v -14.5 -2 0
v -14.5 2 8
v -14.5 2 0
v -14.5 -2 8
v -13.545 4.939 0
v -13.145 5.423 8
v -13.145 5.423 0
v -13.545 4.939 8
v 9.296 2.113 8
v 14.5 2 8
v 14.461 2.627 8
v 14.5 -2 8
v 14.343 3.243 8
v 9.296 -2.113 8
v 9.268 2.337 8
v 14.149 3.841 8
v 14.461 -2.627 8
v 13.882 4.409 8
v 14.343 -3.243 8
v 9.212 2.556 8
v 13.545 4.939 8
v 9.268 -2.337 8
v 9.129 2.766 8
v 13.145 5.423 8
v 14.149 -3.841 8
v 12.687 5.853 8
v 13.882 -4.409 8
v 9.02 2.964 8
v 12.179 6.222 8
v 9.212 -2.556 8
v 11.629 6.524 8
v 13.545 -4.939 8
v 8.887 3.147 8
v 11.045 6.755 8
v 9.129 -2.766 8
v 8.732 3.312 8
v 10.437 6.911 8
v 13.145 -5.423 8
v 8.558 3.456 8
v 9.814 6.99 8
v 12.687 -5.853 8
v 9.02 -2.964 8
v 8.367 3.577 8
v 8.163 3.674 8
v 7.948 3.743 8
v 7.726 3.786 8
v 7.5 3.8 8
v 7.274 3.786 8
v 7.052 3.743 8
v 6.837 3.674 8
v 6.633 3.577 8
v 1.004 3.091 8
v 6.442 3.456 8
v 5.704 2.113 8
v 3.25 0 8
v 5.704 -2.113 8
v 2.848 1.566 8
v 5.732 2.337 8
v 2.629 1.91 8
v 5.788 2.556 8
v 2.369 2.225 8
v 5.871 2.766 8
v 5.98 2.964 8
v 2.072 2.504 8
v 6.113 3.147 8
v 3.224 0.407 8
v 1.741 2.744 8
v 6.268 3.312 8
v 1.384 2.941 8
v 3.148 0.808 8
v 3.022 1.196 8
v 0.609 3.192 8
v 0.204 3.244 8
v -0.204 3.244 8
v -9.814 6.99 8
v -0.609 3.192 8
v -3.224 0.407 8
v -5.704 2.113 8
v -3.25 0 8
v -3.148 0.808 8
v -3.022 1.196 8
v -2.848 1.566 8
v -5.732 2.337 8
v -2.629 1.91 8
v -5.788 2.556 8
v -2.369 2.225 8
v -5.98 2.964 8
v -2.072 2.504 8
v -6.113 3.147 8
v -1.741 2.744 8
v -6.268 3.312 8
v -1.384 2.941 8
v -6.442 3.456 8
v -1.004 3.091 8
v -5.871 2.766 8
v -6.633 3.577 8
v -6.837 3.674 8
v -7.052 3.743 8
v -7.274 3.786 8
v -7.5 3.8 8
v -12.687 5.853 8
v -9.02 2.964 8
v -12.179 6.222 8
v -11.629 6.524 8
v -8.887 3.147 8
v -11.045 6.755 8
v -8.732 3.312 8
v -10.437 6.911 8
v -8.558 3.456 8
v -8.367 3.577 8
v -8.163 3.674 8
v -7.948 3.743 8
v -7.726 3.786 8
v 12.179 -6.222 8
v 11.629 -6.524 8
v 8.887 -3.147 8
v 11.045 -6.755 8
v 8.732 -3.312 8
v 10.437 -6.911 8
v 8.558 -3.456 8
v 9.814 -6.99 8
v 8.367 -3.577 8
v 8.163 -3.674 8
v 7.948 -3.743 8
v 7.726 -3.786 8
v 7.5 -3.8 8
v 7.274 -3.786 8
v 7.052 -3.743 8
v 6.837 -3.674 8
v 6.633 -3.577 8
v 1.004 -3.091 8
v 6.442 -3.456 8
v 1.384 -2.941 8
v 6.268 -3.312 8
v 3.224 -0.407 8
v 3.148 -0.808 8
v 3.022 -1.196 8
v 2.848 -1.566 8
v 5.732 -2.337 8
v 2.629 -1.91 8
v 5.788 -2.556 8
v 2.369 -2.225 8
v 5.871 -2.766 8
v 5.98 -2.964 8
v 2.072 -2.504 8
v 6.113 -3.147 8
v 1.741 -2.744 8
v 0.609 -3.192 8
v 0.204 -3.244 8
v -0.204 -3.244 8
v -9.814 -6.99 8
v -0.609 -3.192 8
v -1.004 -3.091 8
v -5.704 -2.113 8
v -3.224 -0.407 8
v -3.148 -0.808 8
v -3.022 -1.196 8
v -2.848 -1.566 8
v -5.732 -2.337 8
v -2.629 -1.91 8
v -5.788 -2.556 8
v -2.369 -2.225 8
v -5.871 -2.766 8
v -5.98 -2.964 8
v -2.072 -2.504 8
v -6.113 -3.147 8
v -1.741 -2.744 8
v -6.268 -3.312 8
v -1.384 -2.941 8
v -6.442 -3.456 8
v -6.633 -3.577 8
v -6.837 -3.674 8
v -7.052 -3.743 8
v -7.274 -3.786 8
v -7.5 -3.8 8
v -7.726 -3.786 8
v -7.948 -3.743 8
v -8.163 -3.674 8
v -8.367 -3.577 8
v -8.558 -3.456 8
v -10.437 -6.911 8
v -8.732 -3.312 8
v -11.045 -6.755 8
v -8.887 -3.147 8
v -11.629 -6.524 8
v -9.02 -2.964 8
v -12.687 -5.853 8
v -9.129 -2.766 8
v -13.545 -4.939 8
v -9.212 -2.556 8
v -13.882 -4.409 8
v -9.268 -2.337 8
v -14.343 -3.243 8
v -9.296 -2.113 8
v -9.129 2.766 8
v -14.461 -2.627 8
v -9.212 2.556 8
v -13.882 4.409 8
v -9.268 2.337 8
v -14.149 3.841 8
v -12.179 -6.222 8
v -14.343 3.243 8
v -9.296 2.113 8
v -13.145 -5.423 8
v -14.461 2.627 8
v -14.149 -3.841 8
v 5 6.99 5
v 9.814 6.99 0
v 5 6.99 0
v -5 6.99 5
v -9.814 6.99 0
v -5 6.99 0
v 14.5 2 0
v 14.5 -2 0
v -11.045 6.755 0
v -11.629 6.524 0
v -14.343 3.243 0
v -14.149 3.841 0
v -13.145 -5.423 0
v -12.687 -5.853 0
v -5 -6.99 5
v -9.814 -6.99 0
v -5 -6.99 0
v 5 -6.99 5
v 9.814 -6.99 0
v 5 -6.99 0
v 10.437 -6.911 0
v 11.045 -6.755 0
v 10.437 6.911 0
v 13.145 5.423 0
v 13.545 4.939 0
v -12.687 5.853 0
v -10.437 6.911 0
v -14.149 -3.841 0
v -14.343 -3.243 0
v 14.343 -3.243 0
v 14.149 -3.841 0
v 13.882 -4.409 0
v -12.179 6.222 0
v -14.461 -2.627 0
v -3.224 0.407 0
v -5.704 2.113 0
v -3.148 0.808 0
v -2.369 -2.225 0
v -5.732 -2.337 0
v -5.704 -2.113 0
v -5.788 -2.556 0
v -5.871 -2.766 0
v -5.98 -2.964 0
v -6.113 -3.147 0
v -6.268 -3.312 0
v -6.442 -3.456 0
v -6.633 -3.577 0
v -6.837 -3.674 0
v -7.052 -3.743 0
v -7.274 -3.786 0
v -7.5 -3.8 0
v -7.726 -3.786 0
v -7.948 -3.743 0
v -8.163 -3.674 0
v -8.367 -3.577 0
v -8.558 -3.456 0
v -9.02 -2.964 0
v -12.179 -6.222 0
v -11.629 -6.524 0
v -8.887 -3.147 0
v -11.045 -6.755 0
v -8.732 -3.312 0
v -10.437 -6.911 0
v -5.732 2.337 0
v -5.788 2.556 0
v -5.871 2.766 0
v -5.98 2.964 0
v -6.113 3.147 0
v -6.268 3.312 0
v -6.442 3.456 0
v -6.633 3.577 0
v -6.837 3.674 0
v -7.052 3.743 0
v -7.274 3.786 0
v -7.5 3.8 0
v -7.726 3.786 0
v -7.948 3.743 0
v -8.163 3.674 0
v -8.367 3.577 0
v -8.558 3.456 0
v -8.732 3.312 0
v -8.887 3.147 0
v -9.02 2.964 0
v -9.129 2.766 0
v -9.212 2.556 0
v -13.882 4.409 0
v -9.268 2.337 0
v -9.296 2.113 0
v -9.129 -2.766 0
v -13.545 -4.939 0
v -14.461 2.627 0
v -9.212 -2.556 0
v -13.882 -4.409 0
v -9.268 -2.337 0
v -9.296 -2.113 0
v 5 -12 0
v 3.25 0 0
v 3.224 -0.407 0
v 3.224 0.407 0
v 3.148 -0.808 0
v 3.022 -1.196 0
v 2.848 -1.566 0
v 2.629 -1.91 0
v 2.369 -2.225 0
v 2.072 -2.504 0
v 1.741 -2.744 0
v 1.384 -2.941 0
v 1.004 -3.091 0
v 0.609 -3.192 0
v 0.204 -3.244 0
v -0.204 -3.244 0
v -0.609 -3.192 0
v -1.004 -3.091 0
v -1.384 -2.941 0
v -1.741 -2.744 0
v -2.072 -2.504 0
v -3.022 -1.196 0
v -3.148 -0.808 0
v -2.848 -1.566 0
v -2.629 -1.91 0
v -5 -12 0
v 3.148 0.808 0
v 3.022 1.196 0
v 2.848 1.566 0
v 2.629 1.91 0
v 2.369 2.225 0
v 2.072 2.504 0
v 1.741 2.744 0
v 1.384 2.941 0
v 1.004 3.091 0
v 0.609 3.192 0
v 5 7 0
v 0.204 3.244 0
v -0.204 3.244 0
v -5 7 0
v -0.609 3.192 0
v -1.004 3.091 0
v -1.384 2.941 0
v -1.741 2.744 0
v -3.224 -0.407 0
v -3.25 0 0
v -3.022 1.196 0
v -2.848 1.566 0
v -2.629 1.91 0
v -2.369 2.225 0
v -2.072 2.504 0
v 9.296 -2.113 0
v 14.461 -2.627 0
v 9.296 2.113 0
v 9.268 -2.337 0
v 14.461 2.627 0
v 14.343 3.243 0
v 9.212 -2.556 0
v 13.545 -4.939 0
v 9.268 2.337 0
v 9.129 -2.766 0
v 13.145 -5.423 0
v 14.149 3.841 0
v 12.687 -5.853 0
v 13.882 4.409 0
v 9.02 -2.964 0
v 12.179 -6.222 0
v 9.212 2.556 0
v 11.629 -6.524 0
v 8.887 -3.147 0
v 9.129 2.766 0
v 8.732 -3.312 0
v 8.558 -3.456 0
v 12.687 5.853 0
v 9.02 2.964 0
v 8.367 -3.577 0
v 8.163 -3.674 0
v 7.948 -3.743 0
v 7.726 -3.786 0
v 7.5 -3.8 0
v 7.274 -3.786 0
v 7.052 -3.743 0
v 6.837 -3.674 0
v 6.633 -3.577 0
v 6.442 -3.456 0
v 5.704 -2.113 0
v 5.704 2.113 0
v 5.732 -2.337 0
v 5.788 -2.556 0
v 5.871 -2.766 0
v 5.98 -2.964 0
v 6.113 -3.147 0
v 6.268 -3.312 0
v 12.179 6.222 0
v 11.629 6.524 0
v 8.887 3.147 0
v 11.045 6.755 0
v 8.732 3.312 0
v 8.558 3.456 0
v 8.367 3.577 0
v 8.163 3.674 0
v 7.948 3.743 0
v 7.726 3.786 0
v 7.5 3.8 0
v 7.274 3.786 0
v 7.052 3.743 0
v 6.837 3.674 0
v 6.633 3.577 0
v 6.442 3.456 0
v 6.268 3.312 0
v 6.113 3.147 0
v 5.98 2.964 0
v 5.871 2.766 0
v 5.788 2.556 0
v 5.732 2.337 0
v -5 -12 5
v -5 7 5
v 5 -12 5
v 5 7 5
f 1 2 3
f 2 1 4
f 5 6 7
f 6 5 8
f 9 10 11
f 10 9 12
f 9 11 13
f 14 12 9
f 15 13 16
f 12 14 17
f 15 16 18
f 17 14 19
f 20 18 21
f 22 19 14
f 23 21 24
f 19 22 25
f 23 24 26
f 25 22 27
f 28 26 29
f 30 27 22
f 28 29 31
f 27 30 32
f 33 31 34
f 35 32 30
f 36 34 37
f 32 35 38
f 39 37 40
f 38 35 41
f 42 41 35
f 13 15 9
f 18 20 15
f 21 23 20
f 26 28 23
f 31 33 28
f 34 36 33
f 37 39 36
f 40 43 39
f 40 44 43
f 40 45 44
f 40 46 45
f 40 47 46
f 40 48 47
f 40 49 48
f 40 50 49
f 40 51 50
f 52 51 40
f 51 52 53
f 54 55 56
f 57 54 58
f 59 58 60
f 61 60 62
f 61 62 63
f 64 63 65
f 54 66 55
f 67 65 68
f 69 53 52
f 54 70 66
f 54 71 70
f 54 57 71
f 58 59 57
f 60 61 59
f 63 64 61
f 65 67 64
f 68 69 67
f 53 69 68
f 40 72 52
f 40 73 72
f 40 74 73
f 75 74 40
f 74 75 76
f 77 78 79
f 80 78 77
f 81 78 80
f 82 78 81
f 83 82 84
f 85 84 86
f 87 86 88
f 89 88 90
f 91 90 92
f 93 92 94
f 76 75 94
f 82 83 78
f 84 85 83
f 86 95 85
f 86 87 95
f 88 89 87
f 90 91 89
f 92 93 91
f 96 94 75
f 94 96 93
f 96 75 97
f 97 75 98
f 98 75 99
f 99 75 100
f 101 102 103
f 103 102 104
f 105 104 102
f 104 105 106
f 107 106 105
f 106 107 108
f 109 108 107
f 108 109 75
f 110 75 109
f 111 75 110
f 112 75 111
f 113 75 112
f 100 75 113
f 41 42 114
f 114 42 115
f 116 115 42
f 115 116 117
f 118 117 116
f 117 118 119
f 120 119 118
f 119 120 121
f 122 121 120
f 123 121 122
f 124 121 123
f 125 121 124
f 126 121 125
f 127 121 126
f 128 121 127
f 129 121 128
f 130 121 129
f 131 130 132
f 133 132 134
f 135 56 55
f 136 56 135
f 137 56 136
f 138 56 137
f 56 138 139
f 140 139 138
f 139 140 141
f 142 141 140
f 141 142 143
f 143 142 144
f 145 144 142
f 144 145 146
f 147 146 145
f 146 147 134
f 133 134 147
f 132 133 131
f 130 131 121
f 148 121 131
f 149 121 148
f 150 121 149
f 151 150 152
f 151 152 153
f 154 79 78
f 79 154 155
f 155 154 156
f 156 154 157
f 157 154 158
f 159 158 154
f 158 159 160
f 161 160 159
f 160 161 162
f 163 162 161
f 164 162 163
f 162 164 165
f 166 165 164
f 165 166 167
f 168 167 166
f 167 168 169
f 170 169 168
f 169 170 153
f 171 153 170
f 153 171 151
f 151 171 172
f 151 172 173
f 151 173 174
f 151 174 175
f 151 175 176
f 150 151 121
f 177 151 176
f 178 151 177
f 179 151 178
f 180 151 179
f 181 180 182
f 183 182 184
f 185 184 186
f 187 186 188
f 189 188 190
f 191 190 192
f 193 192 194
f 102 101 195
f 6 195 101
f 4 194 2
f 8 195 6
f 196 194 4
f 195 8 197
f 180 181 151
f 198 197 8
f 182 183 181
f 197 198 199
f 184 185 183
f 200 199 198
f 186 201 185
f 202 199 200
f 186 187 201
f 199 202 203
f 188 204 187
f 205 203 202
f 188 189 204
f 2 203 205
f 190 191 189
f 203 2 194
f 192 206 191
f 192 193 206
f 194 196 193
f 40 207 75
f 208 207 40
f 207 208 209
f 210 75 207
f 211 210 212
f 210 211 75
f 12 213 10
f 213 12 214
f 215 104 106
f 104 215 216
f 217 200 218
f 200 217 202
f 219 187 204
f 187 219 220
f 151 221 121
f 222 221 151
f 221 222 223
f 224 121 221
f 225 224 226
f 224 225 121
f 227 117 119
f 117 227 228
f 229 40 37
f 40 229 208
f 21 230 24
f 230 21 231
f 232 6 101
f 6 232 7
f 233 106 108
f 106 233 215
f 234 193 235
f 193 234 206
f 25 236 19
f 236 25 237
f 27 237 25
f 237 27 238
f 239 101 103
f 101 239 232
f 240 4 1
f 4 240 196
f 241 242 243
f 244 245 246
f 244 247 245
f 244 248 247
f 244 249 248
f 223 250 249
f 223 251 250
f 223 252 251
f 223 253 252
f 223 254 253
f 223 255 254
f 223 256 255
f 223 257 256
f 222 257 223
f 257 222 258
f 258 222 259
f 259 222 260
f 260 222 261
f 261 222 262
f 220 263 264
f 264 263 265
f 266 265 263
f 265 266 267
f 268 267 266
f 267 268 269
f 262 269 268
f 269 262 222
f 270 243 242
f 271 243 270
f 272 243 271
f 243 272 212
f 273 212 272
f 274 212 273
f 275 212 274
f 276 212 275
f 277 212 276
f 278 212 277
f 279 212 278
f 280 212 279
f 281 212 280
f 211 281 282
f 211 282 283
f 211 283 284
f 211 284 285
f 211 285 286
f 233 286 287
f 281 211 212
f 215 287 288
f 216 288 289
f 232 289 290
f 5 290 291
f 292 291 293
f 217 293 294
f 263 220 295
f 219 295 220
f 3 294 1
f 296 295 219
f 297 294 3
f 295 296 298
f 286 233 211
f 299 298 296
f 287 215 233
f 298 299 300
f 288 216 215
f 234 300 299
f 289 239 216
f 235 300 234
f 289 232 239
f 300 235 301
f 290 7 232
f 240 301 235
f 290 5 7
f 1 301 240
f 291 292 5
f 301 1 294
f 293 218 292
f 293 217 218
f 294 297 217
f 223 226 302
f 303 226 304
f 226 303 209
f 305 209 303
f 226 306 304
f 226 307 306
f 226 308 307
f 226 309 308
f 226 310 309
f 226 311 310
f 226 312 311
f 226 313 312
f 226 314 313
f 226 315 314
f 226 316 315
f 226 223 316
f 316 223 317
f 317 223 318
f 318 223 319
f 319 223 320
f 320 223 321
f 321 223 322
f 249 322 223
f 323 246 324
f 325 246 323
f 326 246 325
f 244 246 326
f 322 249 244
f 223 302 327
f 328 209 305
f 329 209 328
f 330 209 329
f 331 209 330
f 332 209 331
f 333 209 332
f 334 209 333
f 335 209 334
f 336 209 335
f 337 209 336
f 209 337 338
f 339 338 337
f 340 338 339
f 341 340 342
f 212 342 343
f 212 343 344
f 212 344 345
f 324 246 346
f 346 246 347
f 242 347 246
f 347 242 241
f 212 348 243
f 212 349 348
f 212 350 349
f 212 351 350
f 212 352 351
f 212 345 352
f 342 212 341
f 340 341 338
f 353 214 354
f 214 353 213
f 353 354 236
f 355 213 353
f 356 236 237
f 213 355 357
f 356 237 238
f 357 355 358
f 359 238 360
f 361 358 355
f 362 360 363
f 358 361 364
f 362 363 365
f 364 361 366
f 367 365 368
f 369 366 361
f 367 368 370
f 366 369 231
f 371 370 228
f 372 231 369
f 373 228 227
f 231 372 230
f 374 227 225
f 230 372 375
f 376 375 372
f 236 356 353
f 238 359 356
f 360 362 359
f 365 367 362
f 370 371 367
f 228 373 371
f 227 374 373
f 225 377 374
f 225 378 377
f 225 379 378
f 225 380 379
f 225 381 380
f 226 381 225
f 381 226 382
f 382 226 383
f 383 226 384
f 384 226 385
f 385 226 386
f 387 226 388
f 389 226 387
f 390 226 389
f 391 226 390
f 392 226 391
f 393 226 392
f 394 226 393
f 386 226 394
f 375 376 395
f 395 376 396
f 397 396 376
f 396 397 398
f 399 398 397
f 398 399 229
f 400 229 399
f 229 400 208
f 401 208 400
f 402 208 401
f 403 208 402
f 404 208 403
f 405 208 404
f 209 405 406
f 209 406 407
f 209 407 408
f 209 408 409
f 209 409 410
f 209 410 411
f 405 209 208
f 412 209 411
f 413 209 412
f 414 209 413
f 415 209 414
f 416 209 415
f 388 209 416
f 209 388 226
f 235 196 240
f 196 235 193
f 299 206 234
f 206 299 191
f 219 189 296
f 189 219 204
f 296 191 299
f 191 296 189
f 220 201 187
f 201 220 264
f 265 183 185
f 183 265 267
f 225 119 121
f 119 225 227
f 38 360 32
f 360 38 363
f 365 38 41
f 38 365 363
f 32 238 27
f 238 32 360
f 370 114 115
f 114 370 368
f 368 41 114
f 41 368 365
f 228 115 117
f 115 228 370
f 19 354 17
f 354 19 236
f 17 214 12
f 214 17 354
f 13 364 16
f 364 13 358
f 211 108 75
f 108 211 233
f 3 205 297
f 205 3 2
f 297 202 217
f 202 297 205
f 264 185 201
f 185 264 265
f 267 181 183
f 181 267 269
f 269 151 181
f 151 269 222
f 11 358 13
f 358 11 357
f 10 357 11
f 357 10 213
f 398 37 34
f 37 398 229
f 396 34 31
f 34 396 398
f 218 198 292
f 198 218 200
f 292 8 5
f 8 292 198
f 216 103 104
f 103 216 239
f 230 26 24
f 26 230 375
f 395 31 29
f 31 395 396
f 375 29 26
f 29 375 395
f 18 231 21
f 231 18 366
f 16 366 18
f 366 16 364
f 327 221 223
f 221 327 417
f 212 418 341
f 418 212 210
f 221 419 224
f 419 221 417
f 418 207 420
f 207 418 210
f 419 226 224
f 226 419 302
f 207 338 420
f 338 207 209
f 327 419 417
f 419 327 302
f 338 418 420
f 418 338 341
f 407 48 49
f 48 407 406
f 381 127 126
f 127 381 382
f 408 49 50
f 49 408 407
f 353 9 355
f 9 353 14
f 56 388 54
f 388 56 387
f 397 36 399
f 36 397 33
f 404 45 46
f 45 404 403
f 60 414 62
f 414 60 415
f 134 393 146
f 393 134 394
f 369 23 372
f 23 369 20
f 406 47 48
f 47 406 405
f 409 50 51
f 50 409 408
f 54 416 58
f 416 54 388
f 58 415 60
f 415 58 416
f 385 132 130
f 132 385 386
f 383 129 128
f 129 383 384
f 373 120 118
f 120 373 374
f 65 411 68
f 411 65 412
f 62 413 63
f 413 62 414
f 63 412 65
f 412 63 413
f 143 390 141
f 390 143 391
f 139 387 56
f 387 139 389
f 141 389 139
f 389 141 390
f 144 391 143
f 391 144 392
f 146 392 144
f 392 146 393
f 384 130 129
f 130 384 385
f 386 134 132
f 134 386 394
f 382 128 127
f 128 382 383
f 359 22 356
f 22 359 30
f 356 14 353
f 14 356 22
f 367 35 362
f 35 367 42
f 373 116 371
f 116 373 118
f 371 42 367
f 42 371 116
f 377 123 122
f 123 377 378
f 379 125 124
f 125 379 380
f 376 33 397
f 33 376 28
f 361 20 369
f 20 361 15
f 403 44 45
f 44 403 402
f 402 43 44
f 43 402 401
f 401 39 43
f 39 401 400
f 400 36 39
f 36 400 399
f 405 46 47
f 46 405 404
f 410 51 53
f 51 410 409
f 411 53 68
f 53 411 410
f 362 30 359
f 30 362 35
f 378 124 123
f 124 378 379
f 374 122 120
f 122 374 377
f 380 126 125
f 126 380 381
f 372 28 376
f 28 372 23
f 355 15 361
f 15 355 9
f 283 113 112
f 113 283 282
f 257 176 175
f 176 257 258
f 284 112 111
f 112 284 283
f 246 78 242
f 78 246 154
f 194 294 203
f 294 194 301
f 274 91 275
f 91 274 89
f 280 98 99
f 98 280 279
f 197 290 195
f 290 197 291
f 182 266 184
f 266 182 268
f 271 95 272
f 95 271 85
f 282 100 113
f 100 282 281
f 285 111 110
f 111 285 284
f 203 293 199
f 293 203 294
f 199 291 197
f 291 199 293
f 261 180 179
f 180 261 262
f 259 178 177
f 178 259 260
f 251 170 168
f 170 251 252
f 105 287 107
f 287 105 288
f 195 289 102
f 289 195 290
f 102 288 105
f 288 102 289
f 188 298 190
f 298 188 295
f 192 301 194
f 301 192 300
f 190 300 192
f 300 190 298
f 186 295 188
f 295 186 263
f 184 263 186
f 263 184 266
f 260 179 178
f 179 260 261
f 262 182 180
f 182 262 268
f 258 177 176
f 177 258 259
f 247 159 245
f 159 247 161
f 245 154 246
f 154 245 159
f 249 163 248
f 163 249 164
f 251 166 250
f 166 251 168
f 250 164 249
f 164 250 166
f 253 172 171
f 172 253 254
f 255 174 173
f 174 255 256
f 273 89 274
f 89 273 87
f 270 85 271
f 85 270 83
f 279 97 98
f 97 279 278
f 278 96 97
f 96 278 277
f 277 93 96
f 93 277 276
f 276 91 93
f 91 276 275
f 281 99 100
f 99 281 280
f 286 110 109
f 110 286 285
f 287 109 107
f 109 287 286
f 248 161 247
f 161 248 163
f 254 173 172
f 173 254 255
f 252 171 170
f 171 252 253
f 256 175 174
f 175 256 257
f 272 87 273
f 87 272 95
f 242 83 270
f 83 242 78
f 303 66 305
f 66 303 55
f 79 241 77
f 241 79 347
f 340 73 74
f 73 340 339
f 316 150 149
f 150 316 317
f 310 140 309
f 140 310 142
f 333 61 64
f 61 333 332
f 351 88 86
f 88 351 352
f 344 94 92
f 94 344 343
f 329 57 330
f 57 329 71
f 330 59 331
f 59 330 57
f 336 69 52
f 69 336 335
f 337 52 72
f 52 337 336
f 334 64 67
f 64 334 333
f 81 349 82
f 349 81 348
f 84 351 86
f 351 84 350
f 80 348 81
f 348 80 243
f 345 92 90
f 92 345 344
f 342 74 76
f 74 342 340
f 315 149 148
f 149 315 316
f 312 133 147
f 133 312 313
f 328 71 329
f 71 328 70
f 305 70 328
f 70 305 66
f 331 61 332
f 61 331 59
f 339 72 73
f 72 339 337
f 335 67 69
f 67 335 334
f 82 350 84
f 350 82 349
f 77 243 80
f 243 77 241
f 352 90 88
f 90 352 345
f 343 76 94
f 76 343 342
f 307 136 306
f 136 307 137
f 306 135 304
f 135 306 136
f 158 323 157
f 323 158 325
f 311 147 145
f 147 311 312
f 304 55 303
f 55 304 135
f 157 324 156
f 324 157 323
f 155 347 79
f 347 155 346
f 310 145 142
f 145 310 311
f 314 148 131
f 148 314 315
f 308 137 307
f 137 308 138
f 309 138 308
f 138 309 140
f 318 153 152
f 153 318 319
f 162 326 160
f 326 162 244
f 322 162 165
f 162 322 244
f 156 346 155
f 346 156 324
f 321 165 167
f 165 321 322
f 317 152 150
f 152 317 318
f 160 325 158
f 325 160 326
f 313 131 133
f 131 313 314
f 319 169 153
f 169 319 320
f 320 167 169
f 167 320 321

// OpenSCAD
$fn = 50;


difference() {
	union() {
		hull() {
			translate(v = [-9.5000000000, 2.0000000000, 0]) {
				cylinder(h = 8, r = 5);
			}
			translate(v = [9.5000000000, 2.0000000000, 0]) {
				cylinder(h = 8, r = 5);
			}
			translate(v = [-9.5000000000, -2.0000000000, 0]) {
				cylinder(h = 8, r = 5);
			}
			translate(v = [9.5000000000, -2.0000000000, 0]) {
				cylinder(h = 8, r = 5);
			}
		}
		translate(v = [-5.0000000000, -12.0000000000, 0]) {
			cube(size = [10, 19, 5]);
		}
	}
	union() {
		translate(v = [7.5000000000, 0, 0.0000000000]) {
			rotate(a = [0, 0, 90]) {
				difference() {
					union() {
						hull() {
							translate(v = [2.0000000000, 0, 0]) {
								cylinder(h = 8, r = 1.8000000000, r1 = 1.8000000000, r2 = 1.8000000000);
							}
							translate(v = [-2.0000000000, 0, 0]) {
								cylinder(h = 8, r = 1.8000000000, r1 = 1.8000000000, r2 = 1.8000000000);
							}
						}
					}
					union();
				}
			}
		}
		translate(v = [-7.5000000000, 0, 0.0000000000]) {
			rotate(a = [0, 0, 90]) {
				difference() {
					union() {
						hull() {
							translate(v = [2.0000000000, 0, 0]) {
								cylinder(h = 8, r = 1.8000000000, r1 = 1.8000000000, r2 = 1.8000000000);
							}
							translate(v = [-2.0000000000, 0, 0]) {
								cylinder(h = 8, r = 1.8000000000, r1 = 1.8000000000, r2 = 1.8000000000);
							}
						}
					}
					union();
				}
			}
		}
		translate(v = [0.0000000000, 0.0000000000, -100.0000000000]) {
			cylinder(h = 200, r = 3.2500000000);
		}
		translate(v = [0.0000000000, 0.0000000000, -100.0000000000]) {
			cylinder(h = 200, r = 1.8000000000);
		}
		translate(v = [0.0000000000, 0.0000000000, -100.0000000000]) {
			cylinder(h = 200, r = 1.8000000000);
		}
		translate(v = [0.0000000000, 0.0000000000, -100.0000000000]) {
			cylinder(h = 200, r = 1.8000000000);
		}
	}
}
